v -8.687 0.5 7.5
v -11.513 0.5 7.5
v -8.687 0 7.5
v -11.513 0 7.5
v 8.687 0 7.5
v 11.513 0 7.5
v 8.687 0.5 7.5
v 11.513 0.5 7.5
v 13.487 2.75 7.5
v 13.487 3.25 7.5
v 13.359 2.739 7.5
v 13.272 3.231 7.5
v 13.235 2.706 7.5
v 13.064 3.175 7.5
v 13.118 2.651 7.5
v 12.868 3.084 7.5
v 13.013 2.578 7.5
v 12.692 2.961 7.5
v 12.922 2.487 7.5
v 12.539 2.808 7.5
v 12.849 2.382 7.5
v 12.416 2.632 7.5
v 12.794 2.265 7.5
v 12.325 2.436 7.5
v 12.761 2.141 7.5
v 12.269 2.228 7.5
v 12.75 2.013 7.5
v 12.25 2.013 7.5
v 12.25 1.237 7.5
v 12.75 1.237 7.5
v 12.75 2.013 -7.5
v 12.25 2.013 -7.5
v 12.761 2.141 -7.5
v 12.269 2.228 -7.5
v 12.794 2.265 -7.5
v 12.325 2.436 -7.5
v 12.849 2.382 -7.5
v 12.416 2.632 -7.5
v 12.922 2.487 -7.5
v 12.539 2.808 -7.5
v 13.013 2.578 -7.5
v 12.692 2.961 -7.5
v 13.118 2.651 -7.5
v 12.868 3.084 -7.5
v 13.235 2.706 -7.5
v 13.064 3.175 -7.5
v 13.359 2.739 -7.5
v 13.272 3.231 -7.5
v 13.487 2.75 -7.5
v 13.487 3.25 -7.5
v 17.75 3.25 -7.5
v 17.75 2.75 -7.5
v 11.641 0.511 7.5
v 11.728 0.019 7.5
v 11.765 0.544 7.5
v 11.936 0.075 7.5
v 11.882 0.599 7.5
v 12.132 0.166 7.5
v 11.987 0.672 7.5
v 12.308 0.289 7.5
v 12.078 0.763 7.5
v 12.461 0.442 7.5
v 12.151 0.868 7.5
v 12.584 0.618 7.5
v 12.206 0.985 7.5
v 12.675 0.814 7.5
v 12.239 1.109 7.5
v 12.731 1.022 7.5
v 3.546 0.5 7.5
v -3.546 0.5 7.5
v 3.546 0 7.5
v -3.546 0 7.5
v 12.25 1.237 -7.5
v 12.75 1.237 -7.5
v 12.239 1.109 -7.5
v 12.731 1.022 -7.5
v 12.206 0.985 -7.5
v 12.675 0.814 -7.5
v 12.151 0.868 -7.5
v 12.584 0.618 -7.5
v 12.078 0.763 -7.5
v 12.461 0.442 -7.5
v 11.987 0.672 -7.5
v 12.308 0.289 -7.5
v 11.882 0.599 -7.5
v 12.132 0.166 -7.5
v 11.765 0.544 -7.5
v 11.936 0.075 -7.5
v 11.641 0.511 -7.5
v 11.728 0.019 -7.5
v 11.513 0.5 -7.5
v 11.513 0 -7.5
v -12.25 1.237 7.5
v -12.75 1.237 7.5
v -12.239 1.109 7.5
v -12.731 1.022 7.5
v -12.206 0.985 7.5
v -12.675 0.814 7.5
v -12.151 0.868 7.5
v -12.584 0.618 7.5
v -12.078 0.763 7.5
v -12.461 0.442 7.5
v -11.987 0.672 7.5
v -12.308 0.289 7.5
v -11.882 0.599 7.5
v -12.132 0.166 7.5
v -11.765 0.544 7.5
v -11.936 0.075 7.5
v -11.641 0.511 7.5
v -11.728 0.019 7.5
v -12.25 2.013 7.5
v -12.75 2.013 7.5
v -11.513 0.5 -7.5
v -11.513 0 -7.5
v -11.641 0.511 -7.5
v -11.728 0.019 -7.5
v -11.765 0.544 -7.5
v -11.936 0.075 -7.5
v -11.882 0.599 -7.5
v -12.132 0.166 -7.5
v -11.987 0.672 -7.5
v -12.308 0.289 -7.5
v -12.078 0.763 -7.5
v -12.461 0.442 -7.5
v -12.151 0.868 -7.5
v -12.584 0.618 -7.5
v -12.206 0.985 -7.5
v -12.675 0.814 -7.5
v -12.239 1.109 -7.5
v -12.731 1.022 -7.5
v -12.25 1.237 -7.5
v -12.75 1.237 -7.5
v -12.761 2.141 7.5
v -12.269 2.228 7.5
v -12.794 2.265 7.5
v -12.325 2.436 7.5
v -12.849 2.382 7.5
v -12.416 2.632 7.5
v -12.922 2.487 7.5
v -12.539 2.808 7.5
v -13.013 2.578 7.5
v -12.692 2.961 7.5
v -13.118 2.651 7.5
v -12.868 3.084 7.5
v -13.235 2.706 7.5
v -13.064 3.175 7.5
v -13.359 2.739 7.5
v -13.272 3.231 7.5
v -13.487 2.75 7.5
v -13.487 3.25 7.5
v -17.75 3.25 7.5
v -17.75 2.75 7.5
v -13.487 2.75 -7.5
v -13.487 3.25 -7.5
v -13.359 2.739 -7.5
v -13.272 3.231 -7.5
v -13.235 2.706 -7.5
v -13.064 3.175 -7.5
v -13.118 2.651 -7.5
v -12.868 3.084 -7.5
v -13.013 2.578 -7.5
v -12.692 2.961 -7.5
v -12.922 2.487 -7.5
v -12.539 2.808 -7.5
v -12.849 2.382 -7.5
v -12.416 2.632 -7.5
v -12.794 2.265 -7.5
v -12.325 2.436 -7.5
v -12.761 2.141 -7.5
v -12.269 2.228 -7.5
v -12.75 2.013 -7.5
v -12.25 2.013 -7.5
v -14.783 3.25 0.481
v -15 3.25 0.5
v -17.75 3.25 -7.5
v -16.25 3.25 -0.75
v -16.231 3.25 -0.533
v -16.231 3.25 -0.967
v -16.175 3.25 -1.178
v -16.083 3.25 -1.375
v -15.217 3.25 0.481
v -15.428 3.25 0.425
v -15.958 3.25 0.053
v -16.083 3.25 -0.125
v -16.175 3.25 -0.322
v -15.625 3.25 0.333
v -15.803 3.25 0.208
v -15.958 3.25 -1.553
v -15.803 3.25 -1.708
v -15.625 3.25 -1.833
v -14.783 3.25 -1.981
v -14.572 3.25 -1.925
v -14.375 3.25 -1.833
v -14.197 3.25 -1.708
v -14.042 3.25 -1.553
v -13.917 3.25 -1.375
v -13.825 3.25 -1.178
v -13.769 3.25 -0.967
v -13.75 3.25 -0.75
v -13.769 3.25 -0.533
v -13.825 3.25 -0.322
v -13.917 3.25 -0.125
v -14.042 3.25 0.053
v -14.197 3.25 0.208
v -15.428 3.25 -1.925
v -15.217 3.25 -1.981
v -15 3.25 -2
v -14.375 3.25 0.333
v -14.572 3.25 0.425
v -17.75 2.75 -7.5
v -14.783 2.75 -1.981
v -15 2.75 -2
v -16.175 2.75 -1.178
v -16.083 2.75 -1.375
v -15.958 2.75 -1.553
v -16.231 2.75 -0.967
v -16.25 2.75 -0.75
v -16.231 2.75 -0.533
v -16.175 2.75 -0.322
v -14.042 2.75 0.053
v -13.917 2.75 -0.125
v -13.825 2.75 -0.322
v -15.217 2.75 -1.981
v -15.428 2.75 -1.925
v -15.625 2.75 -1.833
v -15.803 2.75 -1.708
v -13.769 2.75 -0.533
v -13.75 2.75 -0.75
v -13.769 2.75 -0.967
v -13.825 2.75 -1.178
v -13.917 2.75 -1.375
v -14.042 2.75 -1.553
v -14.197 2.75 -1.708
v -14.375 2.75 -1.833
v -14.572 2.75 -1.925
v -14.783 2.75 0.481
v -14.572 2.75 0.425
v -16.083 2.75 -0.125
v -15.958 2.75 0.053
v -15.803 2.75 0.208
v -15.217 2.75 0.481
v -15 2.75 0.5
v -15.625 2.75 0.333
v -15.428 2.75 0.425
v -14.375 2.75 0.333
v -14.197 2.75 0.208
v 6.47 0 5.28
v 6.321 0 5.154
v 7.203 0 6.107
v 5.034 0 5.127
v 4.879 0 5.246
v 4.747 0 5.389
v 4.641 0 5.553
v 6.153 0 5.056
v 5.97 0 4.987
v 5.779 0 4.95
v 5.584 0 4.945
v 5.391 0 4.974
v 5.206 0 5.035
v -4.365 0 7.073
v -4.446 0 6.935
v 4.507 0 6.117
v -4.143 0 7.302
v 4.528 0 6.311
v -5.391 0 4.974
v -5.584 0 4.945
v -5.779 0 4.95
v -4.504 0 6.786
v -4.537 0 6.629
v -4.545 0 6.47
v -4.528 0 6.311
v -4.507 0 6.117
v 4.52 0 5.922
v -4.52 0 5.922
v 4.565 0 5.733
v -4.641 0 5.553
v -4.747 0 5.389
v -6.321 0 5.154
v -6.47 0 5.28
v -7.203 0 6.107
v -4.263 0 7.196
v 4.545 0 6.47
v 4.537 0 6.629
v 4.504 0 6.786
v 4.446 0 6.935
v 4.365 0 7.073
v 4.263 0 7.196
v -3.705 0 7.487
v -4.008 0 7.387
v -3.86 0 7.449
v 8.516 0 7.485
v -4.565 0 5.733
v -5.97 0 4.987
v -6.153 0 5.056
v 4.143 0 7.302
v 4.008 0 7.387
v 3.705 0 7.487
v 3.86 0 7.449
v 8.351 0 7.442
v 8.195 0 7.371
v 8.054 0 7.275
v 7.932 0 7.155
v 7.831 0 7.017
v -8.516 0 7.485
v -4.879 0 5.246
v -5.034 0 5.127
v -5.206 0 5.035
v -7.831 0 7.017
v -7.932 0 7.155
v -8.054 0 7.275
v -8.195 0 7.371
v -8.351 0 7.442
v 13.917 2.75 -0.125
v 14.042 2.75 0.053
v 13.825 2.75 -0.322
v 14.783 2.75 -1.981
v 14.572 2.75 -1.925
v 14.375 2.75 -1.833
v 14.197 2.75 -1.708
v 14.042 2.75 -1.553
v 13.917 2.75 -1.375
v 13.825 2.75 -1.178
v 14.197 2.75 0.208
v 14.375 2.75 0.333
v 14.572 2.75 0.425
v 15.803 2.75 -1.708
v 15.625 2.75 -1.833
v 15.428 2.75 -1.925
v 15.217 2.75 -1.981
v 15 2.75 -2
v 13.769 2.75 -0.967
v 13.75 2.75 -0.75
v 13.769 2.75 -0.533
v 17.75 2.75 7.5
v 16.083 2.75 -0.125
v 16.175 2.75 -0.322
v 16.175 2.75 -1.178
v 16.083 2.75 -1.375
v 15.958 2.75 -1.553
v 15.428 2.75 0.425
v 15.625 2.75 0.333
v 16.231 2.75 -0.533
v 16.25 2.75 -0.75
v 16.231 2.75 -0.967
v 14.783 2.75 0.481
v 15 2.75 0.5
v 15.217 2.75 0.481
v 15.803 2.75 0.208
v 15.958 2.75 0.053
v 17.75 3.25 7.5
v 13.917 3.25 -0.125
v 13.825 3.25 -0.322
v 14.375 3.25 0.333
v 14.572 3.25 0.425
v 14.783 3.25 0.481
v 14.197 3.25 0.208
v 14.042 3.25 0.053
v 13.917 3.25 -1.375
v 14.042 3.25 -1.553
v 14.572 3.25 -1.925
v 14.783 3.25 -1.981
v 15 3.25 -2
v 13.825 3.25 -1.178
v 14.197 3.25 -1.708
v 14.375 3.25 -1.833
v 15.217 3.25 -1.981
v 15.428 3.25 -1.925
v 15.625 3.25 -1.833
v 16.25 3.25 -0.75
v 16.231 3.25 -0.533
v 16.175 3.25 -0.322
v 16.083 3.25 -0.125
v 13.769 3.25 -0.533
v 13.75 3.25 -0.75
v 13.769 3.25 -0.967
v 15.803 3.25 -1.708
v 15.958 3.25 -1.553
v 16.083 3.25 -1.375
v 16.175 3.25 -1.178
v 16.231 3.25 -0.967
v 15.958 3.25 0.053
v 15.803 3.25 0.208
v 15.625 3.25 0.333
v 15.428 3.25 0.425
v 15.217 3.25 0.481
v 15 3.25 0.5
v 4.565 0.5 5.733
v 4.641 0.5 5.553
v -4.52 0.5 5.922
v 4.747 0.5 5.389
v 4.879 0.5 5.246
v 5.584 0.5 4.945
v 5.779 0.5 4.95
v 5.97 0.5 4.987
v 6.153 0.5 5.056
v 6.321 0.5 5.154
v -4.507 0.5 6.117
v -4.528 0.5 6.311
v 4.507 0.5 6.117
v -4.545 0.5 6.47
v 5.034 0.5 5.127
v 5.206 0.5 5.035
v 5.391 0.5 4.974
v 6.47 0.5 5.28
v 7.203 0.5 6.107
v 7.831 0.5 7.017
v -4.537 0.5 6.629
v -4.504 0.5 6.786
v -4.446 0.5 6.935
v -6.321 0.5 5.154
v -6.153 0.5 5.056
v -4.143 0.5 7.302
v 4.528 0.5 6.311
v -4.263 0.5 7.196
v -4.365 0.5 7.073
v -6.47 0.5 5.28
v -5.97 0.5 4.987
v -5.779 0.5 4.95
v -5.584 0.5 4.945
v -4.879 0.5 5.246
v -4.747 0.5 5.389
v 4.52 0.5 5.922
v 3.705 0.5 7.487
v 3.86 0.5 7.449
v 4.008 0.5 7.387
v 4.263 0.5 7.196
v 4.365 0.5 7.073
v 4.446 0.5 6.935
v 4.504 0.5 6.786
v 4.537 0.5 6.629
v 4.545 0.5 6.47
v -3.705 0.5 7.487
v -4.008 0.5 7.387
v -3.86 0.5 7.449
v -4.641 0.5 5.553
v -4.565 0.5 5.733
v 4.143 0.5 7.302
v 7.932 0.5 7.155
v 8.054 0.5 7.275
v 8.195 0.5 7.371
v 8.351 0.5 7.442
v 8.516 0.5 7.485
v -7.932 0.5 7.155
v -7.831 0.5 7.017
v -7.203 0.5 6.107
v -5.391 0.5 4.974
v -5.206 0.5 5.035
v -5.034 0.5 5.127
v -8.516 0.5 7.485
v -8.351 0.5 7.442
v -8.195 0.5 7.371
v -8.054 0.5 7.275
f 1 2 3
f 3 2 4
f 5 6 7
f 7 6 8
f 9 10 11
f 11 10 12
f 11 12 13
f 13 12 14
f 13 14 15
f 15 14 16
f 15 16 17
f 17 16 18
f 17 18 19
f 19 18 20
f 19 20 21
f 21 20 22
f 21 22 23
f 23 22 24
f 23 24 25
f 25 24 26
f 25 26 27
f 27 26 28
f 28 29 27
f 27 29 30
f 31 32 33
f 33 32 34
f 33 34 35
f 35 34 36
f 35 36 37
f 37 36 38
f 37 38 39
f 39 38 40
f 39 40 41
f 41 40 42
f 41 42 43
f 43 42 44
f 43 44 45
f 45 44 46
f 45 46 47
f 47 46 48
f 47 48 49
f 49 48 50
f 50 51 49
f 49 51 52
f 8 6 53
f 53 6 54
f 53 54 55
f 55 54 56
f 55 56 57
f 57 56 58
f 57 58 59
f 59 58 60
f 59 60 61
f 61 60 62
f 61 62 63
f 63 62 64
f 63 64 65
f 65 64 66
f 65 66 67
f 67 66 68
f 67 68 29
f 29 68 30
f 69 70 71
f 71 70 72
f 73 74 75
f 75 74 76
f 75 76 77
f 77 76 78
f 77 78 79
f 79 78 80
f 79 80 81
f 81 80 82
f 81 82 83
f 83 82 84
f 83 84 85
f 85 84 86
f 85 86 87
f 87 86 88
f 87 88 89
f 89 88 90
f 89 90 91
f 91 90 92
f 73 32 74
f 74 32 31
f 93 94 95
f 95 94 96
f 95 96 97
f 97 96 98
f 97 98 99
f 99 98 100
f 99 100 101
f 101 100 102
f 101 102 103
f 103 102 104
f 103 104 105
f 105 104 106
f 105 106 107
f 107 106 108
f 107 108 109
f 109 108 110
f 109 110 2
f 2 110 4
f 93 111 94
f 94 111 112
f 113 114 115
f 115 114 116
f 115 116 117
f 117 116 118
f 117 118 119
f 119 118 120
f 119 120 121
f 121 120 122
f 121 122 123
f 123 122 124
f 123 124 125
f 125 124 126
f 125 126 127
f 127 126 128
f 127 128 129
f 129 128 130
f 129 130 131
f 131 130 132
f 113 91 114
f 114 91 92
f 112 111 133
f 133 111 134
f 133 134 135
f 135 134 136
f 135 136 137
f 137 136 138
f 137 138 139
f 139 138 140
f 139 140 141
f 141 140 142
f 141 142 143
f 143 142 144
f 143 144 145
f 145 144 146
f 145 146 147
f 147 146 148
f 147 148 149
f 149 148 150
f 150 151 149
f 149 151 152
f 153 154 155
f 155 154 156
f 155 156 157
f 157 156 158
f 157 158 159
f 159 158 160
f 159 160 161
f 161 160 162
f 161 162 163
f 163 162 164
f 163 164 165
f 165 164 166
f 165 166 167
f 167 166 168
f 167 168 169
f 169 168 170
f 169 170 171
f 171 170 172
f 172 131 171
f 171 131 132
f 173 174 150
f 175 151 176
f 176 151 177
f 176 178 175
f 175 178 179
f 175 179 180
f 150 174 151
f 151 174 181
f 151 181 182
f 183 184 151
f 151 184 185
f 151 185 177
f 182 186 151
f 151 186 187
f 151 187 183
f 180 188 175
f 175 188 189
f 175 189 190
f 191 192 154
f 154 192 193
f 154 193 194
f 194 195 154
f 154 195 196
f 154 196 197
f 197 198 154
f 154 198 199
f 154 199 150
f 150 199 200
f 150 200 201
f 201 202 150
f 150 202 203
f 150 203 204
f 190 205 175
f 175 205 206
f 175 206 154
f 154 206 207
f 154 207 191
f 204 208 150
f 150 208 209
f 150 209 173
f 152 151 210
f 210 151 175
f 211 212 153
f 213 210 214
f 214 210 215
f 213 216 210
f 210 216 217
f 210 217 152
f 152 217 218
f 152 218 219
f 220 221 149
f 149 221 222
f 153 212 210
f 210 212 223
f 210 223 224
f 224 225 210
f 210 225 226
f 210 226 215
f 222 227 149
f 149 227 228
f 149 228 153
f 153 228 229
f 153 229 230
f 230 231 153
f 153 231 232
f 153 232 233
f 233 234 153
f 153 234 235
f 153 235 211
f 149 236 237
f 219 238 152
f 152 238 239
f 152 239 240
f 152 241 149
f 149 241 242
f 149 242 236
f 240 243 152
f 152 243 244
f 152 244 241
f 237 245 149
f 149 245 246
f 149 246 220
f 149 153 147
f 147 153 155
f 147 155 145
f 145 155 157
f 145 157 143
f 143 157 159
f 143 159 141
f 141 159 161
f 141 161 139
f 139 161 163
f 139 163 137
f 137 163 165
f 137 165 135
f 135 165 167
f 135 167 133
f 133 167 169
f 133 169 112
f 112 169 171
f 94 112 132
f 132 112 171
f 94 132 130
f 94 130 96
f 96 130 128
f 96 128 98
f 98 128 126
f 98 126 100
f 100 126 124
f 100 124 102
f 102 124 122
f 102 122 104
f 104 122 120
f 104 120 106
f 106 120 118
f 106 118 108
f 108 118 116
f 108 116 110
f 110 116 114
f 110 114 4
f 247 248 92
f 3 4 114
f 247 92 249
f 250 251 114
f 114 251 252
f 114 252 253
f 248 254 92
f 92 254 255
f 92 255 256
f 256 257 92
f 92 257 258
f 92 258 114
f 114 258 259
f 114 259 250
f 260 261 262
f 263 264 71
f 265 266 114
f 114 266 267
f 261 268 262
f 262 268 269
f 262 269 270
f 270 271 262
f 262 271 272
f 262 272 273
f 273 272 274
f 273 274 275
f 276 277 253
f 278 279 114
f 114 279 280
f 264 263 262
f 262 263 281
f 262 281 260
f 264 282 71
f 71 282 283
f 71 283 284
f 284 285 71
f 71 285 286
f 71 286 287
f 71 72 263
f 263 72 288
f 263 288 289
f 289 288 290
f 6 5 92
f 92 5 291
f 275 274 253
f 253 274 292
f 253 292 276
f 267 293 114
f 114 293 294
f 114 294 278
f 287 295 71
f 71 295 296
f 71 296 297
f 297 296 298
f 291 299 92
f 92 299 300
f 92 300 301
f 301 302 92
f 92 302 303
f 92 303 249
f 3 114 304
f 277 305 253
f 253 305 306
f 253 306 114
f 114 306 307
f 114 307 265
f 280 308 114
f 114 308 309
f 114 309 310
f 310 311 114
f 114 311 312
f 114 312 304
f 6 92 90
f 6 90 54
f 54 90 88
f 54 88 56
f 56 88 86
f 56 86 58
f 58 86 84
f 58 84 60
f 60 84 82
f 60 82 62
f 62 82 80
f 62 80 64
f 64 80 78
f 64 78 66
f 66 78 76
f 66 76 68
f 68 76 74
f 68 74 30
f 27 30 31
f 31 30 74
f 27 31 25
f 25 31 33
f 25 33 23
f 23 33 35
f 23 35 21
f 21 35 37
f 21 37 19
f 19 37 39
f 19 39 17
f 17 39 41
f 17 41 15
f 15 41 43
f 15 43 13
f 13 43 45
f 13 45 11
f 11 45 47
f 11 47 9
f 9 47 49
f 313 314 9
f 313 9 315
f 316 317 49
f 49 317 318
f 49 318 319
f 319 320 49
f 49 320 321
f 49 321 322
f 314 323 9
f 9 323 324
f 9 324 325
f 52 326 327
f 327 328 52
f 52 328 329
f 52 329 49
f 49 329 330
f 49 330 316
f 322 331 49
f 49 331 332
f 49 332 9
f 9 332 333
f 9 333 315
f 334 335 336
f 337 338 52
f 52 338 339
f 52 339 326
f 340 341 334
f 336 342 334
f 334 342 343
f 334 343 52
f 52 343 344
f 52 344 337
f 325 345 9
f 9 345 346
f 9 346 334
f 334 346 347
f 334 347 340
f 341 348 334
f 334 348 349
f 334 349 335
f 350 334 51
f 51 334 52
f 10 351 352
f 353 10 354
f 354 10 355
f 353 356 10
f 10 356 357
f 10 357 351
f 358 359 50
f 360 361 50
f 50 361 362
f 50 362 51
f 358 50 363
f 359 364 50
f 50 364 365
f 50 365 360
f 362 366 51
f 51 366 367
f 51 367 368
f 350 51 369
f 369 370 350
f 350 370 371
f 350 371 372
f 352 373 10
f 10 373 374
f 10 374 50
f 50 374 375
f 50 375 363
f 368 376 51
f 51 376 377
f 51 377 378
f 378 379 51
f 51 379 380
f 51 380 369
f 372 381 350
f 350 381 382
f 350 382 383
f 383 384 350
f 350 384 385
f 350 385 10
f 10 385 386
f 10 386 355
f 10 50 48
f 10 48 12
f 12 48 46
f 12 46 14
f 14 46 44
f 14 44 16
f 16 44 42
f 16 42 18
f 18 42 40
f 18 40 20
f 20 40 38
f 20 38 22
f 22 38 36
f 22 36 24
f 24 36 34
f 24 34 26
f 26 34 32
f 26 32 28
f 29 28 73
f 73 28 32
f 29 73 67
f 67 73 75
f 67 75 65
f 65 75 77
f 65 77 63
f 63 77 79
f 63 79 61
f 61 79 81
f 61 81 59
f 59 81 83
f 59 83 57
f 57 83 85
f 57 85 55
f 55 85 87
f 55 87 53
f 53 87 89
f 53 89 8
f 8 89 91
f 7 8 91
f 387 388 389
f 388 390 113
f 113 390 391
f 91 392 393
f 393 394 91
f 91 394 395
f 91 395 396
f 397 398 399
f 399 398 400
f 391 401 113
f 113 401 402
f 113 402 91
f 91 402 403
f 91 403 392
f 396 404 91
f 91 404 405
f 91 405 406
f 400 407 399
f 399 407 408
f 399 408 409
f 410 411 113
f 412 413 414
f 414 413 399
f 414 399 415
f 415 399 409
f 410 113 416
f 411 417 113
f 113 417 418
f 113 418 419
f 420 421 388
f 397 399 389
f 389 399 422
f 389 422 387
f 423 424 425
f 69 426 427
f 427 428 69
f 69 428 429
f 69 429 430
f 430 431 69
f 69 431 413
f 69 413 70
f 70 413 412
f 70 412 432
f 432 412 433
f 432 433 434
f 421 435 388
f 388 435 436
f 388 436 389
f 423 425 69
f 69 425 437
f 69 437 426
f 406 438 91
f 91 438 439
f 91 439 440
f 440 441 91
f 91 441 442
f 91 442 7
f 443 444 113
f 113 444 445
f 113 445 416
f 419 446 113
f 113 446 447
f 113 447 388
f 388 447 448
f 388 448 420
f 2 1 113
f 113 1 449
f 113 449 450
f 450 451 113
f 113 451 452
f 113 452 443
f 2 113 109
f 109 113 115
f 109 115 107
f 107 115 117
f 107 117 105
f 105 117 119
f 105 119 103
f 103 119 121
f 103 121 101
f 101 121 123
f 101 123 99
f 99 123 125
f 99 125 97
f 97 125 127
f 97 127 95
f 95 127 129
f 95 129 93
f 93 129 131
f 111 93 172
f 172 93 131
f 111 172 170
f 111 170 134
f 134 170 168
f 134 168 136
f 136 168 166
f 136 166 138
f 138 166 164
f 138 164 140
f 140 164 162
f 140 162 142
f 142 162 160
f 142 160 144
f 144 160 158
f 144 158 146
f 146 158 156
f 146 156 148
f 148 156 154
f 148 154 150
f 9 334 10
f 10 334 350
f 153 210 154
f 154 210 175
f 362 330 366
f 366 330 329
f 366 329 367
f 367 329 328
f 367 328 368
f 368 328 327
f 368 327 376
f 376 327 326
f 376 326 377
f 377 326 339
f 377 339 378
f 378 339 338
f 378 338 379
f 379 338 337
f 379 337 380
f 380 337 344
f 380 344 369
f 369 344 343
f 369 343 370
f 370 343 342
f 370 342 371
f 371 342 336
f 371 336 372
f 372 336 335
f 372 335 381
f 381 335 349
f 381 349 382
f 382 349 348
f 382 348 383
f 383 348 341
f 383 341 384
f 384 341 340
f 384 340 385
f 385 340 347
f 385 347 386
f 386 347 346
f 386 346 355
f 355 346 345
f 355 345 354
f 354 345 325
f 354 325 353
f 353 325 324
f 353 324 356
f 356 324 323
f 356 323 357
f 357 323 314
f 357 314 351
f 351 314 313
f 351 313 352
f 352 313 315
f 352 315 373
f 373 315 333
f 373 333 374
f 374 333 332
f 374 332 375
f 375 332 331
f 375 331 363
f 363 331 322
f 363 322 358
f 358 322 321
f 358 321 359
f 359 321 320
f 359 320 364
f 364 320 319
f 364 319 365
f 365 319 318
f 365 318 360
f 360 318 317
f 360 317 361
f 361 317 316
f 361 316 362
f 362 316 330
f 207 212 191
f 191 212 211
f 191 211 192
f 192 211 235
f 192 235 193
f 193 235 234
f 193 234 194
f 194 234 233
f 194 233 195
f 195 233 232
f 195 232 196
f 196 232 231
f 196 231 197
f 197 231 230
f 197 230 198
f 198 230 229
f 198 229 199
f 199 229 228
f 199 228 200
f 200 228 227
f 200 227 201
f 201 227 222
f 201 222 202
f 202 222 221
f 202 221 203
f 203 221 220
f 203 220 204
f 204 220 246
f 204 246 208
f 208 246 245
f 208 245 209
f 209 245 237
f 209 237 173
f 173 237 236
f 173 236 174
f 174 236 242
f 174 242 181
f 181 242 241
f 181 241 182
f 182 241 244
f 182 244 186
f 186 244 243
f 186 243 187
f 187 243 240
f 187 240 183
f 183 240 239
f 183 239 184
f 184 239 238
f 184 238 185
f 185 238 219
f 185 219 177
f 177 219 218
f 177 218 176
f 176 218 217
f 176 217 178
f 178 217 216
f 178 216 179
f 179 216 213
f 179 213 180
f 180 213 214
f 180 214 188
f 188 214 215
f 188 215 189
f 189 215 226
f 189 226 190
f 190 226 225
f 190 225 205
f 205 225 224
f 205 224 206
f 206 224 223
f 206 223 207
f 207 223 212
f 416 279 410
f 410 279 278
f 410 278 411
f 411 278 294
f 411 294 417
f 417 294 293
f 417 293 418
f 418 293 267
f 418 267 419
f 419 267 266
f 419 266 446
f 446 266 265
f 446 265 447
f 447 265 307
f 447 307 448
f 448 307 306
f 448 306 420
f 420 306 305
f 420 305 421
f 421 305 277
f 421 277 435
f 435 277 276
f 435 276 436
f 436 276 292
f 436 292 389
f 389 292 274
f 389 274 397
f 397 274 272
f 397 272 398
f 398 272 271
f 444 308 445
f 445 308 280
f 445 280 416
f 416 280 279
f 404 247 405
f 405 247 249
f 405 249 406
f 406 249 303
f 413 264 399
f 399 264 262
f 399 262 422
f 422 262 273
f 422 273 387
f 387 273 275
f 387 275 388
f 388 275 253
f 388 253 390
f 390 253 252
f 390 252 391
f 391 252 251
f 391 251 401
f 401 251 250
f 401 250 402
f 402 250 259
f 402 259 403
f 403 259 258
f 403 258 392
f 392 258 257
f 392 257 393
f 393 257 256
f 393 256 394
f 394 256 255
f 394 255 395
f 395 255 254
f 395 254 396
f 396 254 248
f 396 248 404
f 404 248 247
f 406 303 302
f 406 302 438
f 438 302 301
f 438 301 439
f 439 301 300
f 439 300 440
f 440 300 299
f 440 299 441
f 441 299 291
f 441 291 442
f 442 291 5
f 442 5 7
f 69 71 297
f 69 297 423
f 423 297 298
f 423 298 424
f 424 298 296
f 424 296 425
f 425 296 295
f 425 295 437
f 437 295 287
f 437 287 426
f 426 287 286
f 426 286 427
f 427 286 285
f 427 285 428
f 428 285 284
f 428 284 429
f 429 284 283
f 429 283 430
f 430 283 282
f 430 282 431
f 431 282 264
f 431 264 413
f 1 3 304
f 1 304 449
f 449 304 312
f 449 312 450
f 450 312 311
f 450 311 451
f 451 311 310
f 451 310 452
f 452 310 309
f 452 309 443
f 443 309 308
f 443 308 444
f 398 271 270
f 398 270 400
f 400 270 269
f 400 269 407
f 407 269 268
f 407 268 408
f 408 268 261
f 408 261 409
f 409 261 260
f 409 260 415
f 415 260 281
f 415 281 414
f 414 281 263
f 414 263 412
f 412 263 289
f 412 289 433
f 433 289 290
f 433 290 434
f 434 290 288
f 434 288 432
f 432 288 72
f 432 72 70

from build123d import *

# Parameters (mm, degrees)
BASE_FLANGE1_DEPTH = 7.5
SKETCH6_R          = 1.25
CUT_EXTRUDE1_DEPTH = 10
CUT_EXTRUDE2_DEPTH = 10
FILLET1_R          = 1


# Sheet-metal steps are written as plain solids
with BuildPart() as part:
    # Base-Flange1: sheet metal written as solids
    # Sketch1 → Base-Flange1 (new, symmetric)
    with BuildSketch(Plane.XY):
        with BuildLine():
            Line((-17.75, 2.75), (-13.4866, 2.75))
            ThreePointArc((-13.4866, 2.75), (-12.965745145, 2.534254855), (-12.75, 2.0134))
            Line((-12.75, 2.0134), (-12.75, 1.2366))
            ThreePointArc((-12.75, 1.2366), (-12.387808246, 0.362191754), (-11.5134, 0))
            Line((-11.5134, 0), (11.5134, 0))
            ThreePointArc((11.5134, 0), (12.387808246, 0.362191754), (12.75, 1.2366))
            Line((12.75, 1.2366), (12.75, 2.0134))
            ThreePointArc((12.75, 2.0134), (12.965745145, 2.534254855), (13.4866, 2.75))
            Line((13.4866, 2.75), (17.75, 2.75))
            Line((17.75, 2.75), (17.75, 3.25))
            Line((17.75, 3.25), (13.4866, 3.25))
            ThreePointArc((13.4866, 3.25), (12.612191754, 2.887808246), (12.25, 2.0134))
            Line((12.25, 2.0134), (12.25, 1.2366))
            ThreePointArc((12.25, 1.2366), (12.034254855, 0.715745145), (11.5134, 0.5))
            Line((11.5134, 0.5), (-11.5134, 0.5))
            ThreePointArc((-11.5134, 0.5), (-12.034254855, 0.715745145), (-12.25, 1.2366))
            Line((-12.25, 1.2366), (-12.25, 2.0134))
            ThreePointArc((-12.25, 2.0134), (-12.612191754, 2.887808246), (-13.4866, 3.25))
            Line((-13.4866, 3.25), (-17.75, 3.25))
            Line((-17.75, 3.25), (-17.75, 2.75))
        make_face()
    extrude(amount=BASE_FLANGE1_DEPTH, both=True)

    # Sketch6 → Cut-Extrude1 (cut)
    with BuildSketch(Plane.XZ.offset(-2.75)):
        with Locations(Location((-15, -0.75, 0), (0, 0, 270))):
            Circle(SKETCH6_R)
        with Locations(Location((15, -0.75, 0), (0, 0, 270))):
            Circle(SKETCH6_R)
    extrude(amount=-CUT_EXTRUDE1_DEPTH, mode=Mode.SUBTRACT)

    # Sketch7 → Cut-Extrude2 (cut)
    with BuildSketch(Plane.XZ):
        with BuildLine():
            ThreePointArc((-6.470027047, 5.279972953), (-4.843681451, 5.279972953), (-4.843681451, 6.906318549))
            ThreePointArc((-4.843681451, 6.906318549), (0, 18.599999999), (4.843681451, 6.906318549))
            ThreePointArc((4.843681451, 6.906318549), (4.843681451, 5.279972953), (6.470027047, 5.279972953))
            ThreePointArc((6.470027047, 5.279972953), (0, 20.899999999), (-6.470027047, 5.279972953))
        make_face()
    extrude(amount=-CUT_EXTRUDE2_DEPTH, mode=Mode.SUBTRACT)

    # Fillet1
    fillet1_edges = [part.edges().sort_by_distance(p)[0] for p in [
        (8.103085831, 0.25, 7.5),
        (-8.103085831, 0.25, 7.5),
        (-5.372150407, 0.25, 7.5),
        (5.372150407, 0.25, 7.5),
    ]]
    fillet(fillet1_edges, radius=FILLET1_R)


solid = part.part
